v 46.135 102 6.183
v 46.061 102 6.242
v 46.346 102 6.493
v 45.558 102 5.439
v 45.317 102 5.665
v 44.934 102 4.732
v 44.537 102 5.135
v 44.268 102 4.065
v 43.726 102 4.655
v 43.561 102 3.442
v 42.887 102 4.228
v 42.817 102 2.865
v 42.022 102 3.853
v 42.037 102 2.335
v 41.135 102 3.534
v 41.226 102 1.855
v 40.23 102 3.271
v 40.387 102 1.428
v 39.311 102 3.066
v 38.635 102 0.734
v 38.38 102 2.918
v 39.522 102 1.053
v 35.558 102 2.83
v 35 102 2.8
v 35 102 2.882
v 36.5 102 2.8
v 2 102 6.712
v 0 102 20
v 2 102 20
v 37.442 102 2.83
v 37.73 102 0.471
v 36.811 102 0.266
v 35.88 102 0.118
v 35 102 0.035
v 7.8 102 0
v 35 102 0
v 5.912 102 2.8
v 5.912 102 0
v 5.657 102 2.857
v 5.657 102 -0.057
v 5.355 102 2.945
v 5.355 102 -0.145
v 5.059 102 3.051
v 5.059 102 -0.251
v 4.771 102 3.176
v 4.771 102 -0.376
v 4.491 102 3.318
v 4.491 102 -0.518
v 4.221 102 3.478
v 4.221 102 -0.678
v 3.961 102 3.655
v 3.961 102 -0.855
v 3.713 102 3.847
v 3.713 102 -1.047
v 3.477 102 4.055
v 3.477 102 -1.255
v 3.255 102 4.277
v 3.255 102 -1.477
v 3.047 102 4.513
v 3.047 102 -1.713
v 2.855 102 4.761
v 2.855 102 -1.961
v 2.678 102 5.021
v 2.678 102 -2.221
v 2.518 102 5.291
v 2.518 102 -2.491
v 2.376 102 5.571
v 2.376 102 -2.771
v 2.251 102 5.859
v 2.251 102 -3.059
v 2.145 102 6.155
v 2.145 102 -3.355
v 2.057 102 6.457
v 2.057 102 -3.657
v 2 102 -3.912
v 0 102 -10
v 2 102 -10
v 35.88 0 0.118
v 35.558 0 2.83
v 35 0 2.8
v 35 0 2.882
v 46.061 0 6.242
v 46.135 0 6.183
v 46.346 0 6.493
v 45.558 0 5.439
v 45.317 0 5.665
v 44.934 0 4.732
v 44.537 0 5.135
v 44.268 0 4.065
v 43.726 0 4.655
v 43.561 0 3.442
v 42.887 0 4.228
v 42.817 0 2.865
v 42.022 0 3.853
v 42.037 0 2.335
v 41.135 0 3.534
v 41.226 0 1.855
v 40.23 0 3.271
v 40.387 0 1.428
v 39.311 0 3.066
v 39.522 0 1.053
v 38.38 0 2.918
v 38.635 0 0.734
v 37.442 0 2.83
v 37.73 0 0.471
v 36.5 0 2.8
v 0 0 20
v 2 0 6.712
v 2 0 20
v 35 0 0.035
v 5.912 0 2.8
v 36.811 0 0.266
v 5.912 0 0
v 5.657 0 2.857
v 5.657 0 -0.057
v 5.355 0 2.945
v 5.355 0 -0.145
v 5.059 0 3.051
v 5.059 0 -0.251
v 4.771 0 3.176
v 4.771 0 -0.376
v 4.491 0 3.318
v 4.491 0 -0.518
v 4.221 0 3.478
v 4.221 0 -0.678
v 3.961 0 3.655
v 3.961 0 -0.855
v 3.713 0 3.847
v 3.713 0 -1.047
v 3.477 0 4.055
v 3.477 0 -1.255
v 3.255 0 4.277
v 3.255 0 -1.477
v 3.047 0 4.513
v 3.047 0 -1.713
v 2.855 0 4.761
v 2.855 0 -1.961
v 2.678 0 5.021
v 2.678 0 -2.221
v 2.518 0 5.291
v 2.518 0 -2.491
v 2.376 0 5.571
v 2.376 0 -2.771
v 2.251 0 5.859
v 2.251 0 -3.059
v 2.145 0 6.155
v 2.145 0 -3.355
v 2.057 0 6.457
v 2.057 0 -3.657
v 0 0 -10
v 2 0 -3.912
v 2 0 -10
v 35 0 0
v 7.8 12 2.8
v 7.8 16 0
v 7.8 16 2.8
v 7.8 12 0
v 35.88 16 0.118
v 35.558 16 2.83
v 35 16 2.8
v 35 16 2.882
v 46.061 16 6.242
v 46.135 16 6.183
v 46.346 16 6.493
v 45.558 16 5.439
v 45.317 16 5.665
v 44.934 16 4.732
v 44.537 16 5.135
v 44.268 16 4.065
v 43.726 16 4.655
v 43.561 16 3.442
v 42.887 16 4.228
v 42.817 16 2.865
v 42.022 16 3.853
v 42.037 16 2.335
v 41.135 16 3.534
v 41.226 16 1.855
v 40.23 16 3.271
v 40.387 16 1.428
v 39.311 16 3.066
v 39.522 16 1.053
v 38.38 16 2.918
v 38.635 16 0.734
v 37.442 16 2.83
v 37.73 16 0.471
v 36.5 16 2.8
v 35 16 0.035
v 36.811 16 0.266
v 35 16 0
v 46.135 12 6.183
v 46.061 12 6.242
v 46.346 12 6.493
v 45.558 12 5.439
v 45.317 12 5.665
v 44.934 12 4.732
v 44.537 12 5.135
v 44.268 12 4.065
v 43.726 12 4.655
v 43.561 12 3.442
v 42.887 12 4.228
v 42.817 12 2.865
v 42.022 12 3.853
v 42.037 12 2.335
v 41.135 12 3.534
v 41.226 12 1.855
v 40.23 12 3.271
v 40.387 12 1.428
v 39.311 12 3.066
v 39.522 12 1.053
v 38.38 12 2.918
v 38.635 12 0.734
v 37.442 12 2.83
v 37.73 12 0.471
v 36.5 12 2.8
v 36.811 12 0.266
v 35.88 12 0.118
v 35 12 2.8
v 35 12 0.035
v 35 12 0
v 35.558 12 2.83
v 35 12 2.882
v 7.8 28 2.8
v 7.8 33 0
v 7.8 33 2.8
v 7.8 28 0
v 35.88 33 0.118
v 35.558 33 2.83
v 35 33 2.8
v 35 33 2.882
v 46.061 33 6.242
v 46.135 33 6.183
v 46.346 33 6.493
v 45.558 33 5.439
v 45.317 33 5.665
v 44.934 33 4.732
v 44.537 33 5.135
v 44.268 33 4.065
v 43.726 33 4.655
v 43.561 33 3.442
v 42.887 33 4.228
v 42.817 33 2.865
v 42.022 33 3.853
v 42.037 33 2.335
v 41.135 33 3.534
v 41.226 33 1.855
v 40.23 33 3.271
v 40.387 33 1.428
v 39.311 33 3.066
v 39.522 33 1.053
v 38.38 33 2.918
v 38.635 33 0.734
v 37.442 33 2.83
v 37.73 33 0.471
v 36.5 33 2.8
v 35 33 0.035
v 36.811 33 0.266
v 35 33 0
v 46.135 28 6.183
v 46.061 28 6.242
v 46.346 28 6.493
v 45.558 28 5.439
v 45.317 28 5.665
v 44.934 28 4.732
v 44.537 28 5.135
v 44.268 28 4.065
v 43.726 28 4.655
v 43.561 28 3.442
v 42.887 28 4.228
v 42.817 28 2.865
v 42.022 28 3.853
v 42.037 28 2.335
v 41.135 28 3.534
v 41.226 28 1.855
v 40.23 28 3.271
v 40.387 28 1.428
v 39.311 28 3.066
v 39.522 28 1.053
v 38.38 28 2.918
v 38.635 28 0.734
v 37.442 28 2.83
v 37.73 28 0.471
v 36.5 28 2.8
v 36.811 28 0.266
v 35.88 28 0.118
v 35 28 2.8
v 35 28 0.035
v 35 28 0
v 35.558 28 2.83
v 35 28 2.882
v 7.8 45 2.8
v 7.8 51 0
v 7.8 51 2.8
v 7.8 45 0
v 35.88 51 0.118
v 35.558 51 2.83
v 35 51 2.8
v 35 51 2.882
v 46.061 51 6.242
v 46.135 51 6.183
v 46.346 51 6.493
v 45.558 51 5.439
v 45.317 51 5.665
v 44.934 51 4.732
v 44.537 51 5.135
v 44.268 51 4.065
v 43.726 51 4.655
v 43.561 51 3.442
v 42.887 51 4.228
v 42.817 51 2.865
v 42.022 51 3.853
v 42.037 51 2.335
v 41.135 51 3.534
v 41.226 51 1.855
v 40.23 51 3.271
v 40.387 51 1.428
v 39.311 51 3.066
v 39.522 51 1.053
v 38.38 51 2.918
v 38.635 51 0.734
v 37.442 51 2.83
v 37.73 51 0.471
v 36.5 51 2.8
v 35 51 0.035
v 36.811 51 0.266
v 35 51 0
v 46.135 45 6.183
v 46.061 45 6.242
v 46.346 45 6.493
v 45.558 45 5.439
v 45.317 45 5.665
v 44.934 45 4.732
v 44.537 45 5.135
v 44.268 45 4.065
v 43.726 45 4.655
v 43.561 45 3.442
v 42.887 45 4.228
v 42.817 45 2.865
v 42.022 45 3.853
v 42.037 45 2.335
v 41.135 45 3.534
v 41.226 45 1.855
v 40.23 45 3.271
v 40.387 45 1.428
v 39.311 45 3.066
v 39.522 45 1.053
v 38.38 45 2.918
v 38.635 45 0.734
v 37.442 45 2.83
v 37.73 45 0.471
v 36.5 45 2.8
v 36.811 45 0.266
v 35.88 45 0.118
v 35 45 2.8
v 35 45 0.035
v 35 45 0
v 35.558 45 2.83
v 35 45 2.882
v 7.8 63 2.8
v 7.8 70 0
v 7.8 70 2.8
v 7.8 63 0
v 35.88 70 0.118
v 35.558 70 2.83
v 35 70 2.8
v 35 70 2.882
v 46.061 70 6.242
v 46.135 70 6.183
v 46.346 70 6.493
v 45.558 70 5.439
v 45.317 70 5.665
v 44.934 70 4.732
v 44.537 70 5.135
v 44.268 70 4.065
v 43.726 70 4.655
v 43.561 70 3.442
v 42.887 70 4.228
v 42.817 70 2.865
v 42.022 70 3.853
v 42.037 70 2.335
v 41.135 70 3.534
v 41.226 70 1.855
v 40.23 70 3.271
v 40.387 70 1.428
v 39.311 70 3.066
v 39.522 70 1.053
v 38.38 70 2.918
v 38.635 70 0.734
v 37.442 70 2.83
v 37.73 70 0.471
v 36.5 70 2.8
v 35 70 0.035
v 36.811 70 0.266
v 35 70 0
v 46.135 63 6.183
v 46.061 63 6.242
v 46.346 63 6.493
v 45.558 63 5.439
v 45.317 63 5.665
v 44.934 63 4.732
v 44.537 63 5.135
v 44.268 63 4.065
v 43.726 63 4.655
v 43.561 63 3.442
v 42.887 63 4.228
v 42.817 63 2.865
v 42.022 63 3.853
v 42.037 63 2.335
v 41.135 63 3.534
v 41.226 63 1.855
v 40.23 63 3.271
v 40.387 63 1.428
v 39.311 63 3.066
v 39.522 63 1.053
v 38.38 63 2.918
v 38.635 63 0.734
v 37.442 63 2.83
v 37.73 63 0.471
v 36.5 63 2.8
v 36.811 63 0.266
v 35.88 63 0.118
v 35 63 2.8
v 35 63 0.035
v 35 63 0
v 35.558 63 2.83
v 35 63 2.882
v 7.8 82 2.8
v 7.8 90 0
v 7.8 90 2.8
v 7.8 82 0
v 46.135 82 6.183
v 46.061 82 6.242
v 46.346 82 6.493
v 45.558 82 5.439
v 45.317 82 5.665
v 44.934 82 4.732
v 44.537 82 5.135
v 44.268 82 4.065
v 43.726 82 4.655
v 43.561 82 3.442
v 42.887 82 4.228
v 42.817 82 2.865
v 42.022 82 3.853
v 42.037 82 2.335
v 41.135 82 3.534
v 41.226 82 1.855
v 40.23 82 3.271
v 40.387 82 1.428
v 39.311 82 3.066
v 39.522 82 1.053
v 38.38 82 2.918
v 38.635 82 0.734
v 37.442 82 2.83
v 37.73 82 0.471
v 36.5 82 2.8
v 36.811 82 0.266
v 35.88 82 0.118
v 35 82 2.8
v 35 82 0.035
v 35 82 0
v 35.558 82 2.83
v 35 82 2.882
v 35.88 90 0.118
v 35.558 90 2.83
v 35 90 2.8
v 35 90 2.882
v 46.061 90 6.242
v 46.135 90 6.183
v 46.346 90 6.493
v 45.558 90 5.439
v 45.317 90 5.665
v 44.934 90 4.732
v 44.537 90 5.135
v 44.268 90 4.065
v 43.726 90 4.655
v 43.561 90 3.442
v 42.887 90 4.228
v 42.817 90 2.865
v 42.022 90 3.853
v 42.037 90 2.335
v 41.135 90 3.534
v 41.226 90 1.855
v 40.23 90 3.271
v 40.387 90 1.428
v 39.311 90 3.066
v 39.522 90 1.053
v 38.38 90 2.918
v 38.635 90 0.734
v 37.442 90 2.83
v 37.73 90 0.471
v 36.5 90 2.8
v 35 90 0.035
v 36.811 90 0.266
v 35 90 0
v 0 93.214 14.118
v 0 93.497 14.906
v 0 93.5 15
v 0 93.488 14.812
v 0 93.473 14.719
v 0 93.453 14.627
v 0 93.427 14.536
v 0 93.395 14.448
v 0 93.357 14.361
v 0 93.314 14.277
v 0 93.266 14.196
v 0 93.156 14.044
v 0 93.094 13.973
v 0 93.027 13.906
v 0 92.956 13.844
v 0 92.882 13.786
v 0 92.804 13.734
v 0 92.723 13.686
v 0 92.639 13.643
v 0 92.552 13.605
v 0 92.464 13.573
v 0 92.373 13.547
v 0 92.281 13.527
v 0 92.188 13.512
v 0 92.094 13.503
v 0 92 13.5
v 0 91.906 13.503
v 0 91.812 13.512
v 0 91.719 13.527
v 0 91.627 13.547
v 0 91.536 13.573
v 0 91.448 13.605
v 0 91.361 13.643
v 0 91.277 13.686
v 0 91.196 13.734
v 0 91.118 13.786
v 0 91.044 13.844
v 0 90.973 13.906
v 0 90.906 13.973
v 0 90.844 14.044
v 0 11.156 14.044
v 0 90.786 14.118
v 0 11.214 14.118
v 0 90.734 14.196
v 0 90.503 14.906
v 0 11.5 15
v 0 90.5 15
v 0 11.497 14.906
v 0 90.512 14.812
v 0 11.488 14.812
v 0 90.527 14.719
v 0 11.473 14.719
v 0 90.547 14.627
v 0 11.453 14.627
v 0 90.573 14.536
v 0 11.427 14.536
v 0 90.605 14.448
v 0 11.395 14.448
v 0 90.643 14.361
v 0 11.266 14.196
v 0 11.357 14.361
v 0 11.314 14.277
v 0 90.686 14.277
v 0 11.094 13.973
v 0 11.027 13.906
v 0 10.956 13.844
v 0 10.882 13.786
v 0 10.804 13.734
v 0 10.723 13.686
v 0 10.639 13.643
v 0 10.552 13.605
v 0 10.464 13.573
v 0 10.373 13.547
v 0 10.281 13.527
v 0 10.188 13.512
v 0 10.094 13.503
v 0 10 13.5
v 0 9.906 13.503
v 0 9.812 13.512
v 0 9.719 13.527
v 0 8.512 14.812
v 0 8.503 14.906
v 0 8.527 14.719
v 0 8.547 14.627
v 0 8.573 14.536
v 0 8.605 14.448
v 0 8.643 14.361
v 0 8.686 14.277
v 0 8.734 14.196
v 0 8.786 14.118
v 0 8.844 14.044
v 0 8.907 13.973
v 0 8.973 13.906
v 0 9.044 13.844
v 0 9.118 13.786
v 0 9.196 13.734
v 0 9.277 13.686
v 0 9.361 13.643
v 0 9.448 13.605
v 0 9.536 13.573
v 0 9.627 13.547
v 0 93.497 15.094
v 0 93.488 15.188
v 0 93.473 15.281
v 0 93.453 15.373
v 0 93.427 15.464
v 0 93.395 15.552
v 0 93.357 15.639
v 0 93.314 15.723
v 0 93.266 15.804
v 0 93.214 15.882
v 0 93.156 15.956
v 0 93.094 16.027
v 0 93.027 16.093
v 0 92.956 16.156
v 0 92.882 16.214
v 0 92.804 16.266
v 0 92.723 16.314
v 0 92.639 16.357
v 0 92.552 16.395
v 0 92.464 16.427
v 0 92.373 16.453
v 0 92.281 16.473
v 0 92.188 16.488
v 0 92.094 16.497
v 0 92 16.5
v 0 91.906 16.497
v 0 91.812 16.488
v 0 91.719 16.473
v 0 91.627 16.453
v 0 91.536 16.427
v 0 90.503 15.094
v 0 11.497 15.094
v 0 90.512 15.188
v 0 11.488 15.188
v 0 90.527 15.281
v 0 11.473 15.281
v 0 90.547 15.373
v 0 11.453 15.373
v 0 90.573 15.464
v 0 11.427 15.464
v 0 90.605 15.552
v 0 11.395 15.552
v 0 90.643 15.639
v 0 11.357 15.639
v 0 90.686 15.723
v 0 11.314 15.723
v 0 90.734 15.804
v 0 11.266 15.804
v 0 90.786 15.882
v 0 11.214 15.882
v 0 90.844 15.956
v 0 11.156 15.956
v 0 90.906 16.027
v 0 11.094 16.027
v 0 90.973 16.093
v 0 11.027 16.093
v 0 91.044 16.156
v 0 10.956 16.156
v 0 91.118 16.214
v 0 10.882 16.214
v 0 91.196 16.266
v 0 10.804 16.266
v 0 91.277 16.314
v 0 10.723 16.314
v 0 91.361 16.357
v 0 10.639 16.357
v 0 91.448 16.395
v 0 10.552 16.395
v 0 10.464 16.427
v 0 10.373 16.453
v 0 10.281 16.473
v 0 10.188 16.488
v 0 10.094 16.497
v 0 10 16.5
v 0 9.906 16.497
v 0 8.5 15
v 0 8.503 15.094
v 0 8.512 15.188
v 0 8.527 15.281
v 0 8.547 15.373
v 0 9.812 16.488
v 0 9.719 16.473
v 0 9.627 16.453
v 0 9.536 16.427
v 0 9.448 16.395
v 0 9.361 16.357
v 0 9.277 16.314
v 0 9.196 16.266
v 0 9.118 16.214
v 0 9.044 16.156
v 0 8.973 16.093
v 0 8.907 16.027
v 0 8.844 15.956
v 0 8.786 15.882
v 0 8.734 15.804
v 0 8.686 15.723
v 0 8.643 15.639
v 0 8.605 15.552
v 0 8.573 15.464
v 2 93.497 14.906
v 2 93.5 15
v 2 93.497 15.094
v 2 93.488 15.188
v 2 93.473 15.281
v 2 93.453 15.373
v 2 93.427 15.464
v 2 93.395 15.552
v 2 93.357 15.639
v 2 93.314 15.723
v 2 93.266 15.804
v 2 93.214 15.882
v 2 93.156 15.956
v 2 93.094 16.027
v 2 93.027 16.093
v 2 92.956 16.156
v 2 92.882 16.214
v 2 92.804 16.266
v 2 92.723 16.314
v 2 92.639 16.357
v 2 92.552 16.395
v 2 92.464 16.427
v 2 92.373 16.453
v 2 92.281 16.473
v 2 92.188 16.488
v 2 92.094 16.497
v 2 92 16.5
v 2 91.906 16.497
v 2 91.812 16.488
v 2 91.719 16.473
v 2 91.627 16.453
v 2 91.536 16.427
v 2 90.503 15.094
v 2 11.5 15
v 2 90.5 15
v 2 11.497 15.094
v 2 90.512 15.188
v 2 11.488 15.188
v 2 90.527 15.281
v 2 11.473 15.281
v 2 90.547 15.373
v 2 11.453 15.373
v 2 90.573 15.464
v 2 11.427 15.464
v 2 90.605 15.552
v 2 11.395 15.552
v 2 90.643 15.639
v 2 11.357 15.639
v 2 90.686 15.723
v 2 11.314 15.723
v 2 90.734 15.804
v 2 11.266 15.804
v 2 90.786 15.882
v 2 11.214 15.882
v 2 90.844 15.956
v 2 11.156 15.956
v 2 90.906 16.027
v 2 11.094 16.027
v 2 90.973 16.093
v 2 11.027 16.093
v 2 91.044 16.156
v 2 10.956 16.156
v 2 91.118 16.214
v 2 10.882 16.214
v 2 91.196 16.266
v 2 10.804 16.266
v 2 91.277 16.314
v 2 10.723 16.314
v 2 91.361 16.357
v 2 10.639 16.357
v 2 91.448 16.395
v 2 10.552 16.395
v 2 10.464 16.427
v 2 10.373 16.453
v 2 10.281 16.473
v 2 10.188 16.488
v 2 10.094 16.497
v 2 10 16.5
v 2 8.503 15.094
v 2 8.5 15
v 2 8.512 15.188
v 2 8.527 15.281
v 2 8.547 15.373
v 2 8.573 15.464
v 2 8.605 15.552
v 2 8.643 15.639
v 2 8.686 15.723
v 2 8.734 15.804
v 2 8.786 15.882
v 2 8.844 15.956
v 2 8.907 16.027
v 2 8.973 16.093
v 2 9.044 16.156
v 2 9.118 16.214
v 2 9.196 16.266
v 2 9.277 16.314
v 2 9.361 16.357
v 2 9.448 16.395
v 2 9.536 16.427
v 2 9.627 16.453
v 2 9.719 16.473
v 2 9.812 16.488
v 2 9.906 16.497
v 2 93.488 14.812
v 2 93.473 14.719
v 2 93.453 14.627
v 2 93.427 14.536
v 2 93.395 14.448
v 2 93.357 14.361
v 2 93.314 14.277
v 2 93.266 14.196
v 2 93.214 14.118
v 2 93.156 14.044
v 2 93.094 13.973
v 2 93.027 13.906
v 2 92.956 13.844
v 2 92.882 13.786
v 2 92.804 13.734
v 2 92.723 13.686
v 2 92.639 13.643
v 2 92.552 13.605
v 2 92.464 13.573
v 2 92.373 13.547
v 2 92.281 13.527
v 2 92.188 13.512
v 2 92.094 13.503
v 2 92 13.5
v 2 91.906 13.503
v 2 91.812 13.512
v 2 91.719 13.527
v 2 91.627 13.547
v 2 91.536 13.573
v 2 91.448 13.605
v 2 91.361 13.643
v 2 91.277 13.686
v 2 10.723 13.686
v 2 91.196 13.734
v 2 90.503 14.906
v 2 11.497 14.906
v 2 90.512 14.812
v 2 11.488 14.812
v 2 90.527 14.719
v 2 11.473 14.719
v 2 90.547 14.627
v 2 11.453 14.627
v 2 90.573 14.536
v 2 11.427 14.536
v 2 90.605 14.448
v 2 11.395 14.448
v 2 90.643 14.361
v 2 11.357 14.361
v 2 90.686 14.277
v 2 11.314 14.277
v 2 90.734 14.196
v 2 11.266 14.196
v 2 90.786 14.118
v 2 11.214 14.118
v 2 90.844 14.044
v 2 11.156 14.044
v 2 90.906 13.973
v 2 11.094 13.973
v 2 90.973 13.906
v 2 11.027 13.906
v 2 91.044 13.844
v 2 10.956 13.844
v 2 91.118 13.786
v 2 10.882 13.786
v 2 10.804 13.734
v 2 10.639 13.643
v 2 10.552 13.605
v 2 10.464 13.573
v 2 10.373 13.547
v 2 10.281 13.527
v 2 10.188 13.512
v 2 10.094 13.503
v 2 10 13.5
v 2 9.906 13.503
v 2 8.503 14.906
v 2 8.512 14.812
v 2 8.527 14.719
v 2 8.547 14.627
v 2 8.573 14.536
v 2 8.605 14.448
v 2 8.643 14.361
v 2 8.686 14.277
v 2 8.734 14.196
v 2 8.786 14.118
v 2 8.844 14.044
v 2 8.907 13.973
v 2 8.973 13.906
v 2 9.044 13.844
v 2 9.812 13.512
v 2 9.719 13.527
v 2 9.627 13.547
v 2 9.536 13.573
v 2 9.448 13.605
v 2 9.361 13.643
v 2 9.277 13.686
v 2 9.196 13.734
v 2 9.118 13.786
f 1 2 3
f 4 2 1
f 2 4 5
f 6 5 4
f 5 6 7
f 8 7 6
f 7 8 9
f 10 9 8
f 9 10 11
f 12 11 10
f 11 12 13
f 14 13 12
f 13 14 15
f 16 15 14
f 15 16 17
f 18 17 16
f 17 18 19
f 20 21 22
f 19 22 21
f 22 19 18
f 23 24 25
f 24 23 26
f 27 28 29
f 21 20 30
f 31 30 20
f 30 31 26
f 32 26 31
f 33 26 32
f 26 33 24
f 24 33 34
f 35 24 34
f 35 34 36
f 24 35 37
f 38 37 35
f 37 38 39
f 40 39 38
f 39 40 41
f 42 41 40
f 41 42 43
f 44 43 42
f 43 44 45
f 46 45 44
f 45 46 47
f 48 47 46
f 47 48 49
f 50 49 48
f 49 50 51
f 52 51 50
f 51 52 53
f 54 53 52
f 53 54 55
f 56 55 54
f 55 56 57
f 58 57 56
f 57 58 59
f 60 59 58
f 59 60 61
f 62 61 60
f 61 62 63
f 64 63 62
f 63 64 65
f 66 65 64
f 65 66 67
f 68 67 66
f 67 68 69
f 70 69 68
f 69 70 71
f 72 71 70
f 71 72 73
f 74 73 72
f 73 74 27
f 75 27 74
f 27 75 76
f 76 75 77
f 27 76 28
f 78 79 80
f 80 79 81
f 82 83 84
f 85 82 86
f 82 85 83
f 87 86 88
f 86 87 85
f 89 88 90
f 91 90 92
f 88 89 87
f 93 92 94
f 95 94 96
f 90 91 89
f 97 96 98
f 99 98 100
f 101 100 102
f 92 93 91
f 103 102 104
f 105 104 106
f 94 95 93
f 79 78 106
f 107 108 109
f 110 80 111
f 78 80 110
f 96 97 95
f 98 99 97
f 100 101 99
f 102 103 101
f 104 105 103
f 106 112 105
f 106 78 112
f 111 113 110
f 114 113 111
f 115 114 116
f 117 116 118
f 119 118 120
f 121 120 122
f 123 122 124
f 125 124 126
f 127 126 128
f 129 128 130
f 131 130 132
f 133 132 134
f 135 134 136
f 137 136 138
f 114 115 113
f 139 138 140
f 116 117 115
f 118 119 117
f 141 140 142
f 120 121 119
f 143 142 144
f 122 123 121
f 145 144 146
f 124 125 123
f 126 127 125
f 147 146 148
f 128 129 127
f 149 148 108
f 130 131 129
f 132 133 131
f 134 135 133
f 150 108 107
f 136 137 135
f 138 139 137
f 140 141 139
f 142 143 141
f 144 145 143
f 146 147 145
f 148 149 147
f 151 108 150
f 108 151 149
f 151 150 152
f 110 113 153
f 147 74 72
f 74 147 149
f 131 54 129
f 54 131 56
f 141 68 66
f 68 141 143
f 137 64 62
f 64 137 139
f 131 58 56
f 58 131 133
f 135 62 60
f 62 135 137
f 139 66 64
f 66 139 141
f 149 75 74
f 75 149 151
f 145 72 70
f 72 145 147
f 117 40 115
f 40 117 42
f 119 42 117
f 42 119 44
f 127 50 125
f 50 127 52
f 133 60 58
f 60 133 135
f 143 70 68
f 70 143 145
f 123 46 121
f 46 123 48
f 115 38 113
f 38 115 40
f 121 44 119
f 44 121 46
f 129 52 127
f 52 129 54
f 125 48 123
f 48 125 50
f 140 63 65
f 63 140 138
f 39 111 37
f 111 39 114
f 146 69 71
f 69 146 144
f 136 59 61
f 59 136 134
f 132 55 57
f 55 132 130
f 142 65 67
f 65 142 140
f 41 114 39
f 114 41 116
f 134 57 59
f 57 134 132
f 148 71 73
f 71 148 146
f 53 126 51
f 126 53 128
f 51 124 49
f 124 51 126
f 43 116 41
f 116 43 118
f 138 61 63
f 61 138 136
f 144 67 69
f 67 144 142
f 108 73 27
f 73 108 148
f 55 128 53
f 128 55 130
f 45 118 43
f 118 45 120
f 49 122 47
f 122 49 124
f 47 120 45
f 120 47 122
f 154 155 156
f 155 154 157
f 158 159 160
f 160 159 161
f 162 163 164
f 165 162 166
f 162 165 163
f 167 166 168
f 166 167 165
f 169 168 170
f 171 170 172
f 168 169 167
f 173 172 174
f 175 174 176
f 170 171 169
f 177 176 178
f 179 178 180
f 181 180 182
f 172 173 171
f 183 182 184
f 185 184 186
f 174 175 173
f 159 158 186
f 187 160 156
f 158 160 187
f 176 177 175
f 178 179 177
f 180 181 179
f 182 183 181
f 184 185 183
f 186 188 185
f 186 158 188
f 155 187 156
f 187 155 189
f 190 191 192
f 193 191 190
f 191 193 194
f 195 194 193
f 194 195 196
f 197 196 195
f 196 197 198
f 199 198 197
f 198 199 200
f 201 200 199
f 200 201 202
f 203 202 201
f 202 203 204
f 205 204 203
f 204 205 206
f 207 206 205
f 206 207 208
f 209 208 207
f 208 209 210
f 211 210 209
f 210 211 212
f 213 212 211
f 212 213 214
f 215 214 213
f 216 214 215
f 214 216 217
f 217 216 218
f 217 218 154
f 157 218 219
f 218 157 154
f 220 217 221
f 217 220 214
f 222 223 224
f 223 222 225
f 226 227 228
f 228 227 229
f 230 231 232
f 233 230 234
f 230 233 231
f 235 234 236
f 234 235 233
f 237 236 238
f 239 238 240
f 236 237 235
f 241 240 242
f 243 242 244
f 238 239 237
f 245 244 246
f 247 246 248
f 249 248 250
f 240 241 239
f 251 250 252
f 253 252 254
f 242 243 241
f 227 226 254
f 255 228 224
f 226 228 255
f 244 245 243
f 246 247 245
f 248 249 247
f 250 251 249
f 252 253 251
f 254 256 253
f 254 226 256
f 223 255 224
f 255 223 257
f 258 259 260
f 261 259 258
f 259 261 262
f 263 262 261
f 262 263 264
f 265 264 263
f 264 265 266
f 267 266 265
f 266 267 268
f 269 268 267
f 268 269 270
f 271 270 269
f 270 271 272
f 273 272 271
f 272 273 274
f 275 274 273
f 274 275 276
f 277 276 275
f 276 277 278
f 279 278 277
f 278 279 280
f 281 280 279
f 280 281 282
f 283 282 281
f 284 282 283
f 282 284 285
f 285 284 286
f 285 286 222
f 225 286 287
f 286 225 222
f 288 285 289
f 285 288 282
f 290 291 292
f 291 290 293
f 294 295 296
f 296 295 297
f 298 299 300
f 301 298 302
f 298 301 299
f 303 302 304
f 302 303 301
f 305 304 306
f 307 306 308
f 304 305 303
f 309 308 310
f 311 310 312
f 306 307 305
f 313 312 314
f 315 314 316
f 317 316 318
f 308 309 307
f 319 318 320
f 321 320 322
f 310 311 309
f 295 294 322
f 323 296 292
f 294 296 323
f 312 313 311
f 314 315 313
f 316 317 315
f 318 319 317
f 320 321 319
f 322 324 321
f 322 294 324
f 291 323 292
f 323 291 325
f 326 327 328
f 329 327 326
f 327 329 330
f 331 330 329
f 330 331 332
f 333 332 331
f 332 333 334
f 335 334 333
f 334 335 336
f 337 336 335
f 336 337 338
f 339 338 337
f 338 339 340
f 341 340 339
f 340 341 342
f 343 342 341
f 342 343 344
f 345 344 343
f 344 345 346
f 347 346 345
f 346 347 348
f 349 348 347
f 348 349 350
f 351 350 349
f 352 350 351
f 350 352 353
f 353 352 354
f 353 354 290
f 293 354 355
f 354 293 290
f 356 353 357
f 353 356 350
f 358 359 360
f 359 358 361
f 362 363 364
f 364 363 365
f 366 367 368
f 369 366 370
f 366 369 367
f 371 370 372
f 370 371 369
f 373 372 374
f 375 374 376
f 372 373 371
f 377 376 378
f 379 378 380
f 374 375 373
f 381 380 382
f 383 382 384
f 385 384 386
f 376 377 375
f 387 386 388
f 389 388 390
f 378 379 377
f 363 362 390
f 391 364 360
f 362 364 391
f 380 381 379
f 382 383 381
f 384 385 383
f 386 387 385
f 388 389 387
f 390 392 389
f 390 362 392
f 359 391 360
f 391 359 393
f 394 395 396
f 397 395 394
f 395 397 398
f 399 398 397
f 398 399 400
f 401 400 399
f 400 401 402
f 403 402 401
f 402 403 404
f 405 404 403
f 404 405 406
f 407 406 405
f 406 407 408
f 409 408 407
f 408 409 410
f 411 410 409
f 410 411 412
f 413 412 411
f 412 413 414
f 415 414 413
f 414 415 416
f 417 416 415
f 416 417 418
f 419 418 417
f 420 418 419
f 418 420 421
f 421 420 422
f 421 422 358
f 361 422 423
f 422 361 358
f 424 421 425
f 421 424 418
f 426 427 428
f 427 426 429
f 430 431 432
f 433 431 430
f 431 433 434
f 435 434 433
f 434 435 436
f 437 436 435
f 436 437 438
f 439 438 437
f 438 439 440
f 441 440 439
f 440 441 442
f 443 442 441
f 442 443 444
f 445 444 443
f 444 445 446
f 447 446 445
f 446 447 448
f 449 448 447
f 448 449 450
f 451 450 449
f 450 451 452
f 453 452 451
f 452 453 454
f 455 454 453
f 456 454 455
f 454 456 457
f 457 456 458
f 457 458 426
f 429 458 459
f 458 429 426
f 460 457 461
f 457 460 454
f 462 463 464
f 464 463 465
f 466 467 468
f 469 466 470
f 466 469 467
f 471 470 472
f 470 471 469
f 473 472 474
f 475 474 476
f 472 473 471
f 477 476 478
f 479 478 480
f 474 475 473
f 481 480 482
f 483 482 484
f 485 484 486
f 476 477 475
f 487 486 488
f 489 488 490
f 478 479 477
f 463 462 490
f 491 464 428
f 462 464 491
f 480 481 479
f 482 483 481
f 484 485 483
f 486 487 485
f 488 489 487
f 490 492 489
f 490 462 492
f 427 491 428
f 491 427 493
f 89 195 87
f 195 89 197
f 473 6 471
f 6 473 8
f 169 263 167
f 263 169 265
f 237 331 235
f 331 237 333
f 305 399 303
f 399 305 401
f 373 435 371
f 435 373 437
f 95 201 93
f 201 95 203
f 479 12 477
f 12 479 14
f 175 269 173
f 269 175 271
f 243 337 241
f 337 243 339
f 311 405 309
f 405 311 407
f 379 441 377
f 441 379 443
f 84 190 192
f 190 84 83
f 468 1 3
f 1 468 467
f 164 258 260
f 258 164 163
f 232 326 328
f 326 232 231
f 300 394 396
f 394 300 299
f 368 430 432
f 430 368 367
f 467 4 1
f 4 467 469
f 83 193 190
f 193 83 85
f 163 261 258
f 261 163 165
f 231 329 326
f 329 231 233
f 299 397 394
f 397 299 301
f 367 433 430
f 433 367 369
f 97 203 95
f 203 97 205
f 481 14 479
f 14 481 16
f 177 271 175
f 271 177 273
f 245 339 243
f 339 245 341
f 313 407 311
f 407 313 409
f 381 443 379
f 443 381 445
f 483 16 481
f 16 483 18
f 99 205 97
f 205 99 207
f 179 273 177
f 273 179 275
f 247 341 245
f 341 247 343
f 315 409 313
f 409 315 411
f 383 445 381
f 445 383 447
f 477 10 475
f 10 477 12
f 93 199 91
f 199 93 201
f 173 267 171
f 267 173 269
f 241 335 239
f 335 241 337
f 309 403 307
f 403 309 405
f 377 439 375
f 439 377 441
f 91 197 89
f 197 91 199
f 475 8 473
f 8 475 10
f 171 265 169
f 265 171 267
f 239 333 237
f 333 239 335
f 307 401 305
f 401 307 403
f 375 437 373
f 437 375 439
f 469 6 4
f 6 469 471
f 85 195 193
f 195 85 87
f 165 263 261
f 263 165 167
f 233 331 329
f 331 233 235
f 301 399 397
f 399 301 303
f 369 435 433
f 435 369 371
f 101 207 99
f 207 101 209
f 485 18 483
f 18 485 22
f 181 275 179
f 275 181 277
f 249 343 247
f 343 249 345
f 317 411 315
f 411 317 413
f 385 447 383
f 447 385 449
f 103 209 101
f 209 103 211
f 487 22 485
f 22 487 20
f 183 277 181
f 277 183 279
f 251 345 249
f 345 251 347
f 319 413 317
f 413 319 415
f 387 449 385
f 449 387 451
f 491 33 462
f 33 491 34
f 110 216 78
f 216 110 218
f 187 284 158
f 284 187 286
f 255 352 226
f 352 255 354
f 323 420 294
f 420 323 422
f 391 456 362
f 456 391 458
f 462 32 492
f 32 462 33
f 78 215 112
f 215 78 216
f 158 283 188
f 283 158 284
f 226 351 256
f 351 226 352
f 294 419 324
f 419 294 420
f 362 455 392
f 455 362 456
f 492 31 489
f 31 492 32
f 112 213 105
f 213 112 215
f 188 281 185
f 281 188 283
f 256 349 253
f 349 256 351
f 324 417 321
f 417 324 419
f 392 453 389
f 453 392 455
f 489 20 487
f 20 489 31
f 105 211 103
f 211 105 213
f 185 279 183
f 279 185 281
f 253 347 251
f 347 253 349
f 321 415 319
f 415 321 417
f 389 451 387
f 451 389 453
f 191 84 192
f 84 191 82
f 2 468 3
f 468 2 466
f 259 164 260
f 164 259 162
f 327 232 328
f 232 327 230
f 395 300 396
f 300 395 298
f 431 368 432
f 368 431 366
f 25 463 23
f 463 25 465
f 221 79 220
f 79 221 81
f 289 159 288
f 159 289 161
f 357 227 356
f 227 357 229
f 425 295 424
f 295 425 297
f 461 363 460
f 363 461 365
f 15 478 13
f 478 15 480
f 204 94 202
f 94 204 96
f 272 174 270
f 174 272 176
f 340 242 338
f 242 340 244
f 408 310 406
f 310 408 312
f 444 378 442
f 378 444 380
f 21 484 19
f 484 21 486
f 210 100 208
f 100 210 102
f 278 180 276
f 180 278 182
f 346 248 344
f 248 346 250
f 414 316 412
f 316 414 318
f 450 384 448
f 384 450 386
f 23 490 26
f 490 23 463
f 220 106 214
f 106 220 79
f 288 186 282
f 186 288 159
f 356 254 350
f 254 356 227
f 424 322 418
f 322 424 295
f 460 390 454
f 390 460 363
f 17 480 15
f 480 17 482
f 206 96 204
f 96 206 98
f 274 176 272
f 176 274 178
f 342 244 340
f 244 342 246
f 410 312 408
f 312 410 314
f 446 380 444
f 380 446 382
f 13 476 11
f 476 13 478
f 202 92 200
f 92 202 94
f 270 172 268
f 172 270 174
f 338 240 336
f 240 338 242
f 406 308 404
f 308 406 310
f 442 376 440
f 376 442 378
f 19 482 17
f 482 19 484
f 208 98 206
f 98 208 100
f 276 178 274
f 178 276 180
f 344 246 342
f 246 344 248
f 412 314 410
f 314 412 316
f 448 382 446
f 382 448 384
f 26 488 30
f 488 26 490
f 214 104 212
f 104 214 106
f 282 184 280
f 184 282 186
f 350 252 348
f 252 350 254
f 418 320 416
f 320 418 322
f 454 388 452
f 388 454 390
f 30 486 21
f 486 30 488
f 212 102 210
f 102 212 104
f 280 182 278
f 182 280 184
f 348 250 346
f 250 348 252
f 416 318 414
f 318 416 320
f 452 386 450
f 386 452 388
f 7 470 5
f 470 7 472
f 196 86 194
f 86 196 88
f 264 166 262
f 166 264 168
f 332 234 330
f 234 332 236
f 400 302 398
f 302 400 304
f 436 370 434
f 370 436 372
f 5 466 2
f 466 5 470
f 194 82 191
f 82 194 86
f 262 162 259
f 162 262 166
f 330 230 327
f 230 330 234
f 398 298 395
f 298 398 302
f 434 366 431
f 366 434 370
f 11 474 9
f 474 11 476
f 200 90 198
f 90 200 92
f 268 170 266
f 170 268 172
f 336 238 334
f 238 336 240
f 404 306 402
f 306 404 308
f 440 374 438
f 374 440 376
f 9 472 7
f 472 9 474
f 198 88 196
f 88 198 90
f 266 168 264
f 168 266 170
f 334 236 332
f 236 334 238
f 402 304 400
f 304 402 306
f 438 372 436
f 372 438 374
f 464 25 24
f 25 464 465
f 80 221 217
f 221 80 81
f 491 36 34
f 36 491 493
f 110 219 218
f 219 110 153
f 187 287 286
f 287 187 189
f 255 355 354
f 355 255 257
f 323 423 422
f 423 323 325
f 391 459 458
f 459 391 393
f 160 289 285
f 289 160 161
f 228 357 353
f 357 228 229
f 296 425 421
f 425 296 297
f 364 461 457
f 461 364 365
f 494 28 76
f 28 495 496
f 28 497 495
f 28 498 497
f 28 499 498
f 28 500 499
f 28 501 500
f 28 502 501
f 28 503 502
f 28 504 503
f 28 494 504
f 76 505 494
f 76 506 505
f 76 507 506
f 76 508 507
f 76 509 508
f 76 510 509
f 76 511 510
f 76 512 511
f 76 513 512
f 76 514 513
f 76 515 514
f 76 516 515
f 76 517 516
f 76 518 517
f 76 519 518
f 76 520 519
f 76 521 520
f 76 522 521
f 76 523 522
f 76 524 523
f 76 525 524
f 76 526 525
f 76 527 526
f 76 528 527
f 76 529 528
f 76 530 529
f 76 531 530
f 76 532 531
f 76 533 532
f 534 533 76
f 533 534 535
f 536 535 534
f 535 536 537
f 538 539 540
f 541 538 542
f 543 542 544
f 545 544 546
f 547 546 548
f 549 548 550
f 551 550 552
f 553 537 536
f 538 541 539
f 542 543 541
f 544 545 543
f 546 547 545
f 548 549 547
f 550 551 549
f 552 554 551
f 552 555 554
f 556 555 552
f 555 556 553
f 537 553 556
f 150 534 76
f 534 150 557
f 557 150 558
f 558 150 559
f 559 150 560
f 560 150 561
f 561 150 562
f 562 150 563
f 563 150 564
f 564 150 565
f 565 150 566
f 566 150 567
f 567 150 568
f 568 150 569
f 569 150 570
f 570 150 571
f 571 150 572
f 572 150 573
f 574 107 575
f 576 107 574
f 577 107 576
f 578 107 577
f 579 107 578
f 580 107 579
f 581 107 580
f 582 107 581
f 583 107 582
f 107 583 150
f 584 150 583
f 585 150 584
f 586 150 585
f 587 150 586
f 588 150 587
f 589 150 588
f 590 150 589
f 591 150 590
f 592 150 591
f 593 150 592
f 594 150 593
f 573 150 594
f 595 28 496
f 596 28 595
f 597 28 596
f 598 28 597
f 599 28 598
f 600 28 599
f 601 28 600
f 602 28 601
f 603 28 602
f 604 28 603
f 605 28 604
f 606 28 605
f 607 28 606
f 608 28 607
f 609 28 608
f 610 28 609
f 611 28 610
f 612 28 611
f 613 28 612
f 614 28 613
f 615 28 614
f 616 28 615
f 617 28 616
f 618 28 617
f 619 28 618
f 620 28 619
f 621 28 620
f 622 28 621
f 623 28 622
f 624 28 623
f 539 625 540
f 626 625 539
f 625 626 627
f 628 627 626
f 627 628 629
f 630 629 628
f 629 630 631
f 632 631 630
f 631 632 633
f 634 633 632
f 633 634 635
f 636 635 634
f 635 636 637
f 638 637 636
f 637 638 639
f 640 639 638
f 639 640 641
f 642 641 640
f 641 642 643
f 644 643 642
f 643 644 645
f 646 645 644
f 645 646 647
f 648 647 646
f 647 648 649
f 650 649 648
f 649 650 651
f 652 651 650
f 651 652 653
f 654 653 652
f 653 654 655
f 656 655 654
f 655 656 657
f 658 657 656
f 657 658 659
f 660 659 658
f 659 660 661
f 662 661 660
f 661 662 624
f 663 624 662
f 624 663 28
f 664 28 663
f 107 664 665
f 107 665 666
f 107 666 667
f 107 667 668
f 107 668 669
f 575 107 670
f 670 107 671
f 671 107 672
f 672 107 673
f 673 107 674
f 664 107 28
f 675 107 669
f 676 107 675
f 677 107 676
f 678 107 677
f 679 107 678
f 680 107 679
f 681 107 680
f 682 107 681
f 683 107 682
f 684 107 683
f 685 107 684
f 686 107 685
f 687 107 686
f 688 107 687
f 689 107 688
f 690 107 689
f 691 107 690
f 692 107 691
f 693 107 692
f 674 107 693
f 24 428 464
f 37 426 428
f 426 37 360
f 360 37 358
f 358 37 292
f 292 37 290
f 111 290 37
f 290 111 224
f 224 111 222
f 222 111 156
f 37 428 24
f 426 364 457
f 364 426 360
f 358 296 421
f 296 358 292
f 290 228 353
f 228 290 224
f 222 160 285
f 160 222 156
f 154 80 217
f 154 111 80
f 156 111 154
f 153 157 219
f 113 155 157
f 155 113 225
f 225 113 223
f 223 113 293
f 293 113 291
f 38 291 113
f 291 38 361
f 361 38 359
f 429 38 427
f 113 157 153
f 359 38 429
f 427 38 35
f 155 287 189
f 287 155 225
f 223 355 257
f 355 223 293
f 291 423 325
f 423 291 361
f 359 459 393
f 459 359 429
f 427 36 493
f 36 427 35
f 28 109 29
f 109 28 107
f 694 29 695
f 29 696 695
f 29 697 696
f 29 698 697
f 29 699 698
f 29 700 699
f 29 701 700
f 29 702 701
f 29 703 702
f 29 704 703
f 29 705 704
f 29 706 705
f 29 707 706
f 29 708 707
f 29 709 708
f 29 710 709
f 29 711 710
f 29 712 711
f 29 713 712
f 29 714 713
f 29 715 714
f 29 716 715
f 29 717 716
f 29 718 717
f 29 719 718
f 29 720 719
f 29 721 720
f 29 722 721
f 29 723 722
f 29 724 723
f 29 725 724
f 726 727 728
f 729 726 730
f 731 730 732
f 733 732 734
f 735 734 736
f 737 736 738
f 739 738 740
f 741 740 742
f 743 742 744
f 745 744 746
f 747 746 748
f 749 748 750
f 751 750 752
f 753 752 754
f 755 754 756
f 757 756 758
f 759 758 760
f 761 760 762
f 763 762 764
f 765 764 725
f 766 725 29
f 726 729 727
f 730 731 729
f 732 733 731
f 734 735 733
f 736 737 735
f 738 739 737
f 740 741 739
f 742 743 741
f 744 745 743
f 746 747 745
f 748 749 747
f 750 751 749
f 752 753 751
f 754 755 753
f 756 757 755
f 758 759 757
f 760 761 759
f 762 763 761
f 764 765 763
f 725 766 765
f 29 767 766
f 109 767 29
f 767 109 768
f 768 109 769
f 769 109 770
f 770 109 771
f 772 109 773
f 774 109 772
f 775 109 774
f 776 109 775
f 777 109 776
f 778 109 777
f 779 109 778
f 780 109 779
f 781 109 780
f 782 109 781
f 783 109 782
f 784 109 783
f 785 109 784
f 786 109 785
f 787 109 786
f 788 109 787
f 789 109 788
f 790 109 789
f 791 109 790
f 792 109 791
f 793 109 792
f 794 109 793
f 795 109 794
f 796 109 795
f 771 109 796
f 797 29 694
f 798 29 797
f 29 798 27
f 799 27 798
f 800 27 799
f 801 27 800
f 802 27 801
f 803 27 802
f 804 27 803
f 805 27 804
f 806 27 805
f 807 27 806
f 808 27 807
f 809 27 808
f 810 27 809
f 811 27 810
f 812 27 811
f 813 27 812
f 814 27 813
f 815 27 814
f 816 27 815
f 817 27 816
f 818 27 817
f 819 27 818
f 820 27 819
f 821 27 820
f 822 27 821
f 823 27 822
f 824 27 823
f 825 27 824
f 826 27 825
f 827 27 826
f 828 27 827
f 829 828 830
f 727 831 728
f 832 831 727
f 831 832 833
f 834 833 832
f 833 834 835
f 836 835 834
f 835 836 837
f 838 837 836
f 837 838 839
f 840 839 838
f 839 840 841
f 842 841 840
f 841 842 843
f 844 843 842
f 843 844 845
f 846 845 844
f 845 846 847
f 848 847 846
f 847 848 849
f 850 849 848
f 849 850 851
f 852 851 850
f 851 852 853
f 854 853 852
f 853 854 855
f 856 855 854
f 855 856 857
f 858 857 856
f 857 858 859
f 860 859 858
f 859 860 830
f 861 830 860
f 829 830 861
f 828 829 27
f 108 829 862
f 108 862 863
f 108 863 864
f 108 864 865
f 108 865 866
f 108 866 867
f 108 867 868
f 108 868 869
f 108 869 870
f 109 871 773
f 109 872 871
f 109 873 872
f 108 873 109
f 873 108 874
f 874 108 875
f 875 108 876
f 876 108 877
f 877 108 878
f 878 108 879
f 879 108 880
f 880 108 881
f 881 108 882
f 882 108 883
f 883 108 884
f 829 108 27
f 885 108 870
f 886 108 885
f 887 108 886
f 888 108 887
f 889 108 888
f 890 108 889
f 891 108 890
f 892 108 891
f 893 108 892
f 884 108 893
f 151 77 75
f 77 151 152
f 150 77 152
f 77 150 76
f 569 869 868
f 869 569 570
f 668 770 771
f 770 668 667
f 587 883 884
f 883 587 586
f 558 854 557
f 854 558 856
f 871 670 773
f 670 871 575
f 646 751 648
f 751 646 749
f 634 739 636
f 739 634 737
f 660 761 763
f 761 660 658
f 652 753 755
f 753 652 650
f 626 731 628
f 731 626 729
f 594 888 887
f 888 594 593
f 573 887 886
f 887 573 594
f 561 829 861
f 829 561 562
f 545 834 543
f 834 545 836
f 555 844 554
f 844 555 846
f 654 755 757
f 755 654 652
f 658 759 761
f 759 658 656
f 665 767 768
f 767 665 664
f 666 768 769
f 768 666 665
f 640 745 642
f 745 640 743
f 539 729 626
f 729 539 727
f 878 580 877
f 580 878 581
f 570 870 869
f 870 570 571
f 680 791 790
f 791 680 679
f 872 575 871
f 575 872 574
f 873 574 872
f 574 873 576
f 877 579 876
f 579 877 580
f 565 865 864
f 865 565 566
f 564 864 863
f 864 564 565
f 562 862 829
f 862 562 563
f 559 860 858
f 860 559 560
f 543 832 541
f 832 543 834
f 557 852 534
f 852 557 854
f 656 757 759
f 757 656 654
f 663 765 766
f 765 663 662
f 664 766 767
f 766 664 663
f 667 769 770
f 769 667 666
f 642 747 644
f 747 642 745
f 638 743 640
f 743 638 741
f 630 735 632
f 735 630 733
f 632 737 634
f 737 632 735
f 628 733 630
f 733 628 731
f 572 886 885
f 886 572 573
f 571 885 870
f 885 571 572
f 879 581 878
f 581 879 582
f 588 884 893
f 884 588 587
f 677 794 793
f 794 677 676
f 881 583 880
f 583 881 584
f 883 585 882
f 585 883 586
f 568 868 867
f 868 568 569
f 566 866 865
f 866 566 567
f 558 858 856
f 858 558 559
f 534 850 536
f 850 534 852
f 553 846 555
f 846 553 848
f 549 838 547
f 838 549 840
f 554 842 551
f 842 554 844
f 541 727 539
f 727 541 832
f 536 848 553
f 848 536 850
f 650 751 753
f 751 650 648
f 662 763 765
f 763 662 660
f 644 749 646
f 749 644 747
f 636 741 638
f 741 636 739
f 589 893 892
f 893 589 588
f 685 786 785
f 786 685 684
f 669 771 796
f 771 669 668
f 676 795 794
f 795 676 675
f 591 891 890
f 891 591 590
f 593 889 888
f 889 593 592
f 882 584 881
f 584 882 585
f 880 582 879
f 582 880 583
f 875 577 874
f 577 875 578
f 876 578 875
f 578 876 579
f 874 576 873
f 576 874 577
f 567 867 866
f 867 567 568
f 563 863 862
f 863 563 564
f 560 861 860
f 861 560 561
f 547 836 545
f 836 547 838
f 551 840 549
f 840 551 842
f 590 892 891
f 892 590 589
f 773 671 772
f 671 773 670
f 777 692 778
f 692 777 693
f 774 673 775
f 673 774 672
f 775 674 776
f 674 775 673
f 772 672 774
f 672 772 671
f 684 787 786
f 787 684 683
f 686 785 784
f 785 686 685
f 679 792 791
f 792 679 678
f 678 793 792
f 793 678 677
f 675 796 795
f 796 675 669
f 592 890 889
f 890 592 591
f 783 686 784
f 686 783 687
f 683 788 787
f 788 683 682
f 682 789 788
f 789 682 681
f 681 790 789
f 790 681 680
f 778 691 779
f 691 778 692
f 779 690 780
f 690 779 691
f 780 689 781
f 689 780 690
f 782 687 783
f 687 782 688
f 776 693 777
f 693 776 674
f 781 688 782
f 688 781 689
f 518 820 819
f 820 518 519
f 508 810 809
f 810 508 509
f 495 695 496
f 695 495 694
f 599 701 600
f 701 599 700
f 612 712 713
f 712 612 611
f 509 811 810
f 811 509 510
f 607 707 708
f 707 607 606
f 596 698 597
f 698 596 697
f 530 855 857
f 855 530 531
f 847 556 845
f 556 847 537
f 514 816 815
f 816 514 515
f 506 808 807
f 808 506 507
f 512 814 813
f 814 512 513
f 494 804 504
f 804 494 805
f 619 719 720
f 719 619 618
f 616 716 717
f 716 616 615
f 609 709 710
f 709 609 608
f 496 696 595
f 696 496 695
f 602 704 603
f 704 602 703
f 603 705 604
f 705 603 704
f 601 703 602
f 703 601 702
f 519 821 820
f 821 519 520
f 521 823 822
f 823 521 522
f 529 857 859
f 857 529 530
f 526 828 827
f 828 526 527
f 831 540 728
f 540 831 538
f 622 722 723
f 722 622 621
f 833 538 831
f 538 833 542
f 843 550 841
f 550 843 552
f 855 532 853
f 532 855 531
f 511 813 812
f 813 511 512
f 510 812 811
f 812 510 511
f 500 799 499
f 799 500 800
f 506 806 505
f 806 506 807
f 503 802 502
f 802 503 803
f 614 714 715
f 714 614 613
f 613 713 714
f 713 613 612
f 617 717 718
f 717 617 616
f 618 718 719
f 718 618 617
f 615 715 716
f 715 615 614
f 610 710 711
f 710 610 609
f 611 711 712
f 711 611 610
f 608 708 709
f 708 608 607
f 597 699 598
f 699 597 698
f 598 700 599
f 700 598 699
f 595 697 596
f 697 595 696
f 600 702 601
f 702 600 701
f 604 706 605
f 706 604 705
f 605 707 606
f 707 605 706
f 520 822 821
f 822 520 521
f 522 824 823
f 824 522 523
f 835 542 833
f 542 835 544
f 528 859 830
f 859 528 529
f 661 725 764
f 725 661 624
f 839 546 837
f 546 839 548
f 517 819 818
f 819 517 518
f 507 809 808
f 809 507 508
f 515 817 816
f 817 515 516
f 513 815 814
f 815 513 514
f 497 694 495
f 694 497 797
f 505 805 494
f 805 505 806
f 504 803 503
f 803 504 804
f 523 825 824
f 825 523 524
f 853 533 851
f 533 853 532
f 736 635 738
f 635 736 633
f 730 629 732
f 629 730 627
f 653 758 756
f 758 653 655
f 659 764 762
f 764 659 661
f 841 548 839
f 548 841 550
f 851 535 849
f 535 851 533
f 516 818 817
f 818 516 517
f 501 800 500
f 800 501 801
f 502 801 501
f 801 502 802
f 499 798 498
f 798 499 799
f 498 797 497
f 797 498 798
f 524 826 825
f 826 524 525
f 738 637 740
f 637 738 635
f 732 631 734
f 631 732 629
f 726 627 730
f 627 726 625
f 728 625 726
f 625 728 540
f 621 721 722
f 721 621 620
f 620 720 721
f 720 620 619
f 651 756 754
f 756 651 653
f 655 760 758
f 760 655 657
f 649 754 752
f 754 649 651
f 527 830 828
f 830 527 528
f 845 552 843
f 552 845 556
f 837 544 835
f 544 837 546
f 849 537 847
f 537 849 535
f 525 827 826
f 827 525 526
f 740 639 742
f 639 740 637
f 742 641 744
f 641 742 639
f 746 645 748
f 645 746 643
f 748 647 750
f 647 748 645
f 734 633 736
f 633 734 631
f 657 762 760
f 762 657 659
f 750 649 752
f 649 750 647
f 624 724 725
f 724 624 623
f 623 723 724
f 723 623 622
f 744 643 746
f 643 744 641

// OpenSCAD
$fn = 100;

slots = [4,5,6,7,8];
margin = 12;

length = 35;
height = 2.8;

wallHeight = 30;
wallDepth = 2;

width = sum(slots) + (len(slots) + 1) * margin;
echo(width);


arms();

module arms(){
    
    difference(){
        
        union(){
            
            cube([length, width, height]);
    
            translate([0,0,-wallHeight/3])
            cube([wallDepth, width, wallHeight]);
            
            translate([length,0,0])
            armEnd();
            
            translate([wallDepth-0.1,0,height-0.1])
            difference(){
                cube([5.1,width,5.1]);
                
                translate([5, -1,5])
                rotate([-90,0,0])
                cylinder(d = 10, h = width +  2);
            }
            translate([wallDepth-0.1,0,-4.9])
            difference(){
                cube([5.1,width,5]);
                
                translate([5, -1,0])
                rotate([-90,0,0])
                cylinder(d = 10, h = width +  2);
            }
            
            
        }
        
        for(i = [0 : len(slots)]){
            
            translate([5 + height, margin + sum_to_i(slots, i)  +  i * margin, -1])
            cube([60, slots[i], 10]);
            
        }
        
        translate([-1, 10, 15])
        rotate([0,90,0])
        cylinder(d = 3, h = 10);
        
        translate([-1, width-10, 15])
        rotate([0,90,0])
        cylinder(d = 3, h = 10);
        
    }
    
    
    
    
}

module armEnd(){
    
    translate([-1,0,15])
    difference(){
        
        rotate([-90,0,0])
        cylinder(r = 15, h = width);
        
        translate([2.5,-1,height])
        rotate([-90,0,0])
        cylinder(r = 15, h = width + 2);
        
        translate([-49,-10, -50])
        cube([50, width + 50, 100]);
        
    }
    
}


function sum(v, i=0) = 
    len(v) > i ? v[i] + sum(v, i+1) : 0;


function sum_to_i(v, mx, i=0) = 
    i < mx ? v[i] + sum_to_i(v, mx, i+1) : 0; 
